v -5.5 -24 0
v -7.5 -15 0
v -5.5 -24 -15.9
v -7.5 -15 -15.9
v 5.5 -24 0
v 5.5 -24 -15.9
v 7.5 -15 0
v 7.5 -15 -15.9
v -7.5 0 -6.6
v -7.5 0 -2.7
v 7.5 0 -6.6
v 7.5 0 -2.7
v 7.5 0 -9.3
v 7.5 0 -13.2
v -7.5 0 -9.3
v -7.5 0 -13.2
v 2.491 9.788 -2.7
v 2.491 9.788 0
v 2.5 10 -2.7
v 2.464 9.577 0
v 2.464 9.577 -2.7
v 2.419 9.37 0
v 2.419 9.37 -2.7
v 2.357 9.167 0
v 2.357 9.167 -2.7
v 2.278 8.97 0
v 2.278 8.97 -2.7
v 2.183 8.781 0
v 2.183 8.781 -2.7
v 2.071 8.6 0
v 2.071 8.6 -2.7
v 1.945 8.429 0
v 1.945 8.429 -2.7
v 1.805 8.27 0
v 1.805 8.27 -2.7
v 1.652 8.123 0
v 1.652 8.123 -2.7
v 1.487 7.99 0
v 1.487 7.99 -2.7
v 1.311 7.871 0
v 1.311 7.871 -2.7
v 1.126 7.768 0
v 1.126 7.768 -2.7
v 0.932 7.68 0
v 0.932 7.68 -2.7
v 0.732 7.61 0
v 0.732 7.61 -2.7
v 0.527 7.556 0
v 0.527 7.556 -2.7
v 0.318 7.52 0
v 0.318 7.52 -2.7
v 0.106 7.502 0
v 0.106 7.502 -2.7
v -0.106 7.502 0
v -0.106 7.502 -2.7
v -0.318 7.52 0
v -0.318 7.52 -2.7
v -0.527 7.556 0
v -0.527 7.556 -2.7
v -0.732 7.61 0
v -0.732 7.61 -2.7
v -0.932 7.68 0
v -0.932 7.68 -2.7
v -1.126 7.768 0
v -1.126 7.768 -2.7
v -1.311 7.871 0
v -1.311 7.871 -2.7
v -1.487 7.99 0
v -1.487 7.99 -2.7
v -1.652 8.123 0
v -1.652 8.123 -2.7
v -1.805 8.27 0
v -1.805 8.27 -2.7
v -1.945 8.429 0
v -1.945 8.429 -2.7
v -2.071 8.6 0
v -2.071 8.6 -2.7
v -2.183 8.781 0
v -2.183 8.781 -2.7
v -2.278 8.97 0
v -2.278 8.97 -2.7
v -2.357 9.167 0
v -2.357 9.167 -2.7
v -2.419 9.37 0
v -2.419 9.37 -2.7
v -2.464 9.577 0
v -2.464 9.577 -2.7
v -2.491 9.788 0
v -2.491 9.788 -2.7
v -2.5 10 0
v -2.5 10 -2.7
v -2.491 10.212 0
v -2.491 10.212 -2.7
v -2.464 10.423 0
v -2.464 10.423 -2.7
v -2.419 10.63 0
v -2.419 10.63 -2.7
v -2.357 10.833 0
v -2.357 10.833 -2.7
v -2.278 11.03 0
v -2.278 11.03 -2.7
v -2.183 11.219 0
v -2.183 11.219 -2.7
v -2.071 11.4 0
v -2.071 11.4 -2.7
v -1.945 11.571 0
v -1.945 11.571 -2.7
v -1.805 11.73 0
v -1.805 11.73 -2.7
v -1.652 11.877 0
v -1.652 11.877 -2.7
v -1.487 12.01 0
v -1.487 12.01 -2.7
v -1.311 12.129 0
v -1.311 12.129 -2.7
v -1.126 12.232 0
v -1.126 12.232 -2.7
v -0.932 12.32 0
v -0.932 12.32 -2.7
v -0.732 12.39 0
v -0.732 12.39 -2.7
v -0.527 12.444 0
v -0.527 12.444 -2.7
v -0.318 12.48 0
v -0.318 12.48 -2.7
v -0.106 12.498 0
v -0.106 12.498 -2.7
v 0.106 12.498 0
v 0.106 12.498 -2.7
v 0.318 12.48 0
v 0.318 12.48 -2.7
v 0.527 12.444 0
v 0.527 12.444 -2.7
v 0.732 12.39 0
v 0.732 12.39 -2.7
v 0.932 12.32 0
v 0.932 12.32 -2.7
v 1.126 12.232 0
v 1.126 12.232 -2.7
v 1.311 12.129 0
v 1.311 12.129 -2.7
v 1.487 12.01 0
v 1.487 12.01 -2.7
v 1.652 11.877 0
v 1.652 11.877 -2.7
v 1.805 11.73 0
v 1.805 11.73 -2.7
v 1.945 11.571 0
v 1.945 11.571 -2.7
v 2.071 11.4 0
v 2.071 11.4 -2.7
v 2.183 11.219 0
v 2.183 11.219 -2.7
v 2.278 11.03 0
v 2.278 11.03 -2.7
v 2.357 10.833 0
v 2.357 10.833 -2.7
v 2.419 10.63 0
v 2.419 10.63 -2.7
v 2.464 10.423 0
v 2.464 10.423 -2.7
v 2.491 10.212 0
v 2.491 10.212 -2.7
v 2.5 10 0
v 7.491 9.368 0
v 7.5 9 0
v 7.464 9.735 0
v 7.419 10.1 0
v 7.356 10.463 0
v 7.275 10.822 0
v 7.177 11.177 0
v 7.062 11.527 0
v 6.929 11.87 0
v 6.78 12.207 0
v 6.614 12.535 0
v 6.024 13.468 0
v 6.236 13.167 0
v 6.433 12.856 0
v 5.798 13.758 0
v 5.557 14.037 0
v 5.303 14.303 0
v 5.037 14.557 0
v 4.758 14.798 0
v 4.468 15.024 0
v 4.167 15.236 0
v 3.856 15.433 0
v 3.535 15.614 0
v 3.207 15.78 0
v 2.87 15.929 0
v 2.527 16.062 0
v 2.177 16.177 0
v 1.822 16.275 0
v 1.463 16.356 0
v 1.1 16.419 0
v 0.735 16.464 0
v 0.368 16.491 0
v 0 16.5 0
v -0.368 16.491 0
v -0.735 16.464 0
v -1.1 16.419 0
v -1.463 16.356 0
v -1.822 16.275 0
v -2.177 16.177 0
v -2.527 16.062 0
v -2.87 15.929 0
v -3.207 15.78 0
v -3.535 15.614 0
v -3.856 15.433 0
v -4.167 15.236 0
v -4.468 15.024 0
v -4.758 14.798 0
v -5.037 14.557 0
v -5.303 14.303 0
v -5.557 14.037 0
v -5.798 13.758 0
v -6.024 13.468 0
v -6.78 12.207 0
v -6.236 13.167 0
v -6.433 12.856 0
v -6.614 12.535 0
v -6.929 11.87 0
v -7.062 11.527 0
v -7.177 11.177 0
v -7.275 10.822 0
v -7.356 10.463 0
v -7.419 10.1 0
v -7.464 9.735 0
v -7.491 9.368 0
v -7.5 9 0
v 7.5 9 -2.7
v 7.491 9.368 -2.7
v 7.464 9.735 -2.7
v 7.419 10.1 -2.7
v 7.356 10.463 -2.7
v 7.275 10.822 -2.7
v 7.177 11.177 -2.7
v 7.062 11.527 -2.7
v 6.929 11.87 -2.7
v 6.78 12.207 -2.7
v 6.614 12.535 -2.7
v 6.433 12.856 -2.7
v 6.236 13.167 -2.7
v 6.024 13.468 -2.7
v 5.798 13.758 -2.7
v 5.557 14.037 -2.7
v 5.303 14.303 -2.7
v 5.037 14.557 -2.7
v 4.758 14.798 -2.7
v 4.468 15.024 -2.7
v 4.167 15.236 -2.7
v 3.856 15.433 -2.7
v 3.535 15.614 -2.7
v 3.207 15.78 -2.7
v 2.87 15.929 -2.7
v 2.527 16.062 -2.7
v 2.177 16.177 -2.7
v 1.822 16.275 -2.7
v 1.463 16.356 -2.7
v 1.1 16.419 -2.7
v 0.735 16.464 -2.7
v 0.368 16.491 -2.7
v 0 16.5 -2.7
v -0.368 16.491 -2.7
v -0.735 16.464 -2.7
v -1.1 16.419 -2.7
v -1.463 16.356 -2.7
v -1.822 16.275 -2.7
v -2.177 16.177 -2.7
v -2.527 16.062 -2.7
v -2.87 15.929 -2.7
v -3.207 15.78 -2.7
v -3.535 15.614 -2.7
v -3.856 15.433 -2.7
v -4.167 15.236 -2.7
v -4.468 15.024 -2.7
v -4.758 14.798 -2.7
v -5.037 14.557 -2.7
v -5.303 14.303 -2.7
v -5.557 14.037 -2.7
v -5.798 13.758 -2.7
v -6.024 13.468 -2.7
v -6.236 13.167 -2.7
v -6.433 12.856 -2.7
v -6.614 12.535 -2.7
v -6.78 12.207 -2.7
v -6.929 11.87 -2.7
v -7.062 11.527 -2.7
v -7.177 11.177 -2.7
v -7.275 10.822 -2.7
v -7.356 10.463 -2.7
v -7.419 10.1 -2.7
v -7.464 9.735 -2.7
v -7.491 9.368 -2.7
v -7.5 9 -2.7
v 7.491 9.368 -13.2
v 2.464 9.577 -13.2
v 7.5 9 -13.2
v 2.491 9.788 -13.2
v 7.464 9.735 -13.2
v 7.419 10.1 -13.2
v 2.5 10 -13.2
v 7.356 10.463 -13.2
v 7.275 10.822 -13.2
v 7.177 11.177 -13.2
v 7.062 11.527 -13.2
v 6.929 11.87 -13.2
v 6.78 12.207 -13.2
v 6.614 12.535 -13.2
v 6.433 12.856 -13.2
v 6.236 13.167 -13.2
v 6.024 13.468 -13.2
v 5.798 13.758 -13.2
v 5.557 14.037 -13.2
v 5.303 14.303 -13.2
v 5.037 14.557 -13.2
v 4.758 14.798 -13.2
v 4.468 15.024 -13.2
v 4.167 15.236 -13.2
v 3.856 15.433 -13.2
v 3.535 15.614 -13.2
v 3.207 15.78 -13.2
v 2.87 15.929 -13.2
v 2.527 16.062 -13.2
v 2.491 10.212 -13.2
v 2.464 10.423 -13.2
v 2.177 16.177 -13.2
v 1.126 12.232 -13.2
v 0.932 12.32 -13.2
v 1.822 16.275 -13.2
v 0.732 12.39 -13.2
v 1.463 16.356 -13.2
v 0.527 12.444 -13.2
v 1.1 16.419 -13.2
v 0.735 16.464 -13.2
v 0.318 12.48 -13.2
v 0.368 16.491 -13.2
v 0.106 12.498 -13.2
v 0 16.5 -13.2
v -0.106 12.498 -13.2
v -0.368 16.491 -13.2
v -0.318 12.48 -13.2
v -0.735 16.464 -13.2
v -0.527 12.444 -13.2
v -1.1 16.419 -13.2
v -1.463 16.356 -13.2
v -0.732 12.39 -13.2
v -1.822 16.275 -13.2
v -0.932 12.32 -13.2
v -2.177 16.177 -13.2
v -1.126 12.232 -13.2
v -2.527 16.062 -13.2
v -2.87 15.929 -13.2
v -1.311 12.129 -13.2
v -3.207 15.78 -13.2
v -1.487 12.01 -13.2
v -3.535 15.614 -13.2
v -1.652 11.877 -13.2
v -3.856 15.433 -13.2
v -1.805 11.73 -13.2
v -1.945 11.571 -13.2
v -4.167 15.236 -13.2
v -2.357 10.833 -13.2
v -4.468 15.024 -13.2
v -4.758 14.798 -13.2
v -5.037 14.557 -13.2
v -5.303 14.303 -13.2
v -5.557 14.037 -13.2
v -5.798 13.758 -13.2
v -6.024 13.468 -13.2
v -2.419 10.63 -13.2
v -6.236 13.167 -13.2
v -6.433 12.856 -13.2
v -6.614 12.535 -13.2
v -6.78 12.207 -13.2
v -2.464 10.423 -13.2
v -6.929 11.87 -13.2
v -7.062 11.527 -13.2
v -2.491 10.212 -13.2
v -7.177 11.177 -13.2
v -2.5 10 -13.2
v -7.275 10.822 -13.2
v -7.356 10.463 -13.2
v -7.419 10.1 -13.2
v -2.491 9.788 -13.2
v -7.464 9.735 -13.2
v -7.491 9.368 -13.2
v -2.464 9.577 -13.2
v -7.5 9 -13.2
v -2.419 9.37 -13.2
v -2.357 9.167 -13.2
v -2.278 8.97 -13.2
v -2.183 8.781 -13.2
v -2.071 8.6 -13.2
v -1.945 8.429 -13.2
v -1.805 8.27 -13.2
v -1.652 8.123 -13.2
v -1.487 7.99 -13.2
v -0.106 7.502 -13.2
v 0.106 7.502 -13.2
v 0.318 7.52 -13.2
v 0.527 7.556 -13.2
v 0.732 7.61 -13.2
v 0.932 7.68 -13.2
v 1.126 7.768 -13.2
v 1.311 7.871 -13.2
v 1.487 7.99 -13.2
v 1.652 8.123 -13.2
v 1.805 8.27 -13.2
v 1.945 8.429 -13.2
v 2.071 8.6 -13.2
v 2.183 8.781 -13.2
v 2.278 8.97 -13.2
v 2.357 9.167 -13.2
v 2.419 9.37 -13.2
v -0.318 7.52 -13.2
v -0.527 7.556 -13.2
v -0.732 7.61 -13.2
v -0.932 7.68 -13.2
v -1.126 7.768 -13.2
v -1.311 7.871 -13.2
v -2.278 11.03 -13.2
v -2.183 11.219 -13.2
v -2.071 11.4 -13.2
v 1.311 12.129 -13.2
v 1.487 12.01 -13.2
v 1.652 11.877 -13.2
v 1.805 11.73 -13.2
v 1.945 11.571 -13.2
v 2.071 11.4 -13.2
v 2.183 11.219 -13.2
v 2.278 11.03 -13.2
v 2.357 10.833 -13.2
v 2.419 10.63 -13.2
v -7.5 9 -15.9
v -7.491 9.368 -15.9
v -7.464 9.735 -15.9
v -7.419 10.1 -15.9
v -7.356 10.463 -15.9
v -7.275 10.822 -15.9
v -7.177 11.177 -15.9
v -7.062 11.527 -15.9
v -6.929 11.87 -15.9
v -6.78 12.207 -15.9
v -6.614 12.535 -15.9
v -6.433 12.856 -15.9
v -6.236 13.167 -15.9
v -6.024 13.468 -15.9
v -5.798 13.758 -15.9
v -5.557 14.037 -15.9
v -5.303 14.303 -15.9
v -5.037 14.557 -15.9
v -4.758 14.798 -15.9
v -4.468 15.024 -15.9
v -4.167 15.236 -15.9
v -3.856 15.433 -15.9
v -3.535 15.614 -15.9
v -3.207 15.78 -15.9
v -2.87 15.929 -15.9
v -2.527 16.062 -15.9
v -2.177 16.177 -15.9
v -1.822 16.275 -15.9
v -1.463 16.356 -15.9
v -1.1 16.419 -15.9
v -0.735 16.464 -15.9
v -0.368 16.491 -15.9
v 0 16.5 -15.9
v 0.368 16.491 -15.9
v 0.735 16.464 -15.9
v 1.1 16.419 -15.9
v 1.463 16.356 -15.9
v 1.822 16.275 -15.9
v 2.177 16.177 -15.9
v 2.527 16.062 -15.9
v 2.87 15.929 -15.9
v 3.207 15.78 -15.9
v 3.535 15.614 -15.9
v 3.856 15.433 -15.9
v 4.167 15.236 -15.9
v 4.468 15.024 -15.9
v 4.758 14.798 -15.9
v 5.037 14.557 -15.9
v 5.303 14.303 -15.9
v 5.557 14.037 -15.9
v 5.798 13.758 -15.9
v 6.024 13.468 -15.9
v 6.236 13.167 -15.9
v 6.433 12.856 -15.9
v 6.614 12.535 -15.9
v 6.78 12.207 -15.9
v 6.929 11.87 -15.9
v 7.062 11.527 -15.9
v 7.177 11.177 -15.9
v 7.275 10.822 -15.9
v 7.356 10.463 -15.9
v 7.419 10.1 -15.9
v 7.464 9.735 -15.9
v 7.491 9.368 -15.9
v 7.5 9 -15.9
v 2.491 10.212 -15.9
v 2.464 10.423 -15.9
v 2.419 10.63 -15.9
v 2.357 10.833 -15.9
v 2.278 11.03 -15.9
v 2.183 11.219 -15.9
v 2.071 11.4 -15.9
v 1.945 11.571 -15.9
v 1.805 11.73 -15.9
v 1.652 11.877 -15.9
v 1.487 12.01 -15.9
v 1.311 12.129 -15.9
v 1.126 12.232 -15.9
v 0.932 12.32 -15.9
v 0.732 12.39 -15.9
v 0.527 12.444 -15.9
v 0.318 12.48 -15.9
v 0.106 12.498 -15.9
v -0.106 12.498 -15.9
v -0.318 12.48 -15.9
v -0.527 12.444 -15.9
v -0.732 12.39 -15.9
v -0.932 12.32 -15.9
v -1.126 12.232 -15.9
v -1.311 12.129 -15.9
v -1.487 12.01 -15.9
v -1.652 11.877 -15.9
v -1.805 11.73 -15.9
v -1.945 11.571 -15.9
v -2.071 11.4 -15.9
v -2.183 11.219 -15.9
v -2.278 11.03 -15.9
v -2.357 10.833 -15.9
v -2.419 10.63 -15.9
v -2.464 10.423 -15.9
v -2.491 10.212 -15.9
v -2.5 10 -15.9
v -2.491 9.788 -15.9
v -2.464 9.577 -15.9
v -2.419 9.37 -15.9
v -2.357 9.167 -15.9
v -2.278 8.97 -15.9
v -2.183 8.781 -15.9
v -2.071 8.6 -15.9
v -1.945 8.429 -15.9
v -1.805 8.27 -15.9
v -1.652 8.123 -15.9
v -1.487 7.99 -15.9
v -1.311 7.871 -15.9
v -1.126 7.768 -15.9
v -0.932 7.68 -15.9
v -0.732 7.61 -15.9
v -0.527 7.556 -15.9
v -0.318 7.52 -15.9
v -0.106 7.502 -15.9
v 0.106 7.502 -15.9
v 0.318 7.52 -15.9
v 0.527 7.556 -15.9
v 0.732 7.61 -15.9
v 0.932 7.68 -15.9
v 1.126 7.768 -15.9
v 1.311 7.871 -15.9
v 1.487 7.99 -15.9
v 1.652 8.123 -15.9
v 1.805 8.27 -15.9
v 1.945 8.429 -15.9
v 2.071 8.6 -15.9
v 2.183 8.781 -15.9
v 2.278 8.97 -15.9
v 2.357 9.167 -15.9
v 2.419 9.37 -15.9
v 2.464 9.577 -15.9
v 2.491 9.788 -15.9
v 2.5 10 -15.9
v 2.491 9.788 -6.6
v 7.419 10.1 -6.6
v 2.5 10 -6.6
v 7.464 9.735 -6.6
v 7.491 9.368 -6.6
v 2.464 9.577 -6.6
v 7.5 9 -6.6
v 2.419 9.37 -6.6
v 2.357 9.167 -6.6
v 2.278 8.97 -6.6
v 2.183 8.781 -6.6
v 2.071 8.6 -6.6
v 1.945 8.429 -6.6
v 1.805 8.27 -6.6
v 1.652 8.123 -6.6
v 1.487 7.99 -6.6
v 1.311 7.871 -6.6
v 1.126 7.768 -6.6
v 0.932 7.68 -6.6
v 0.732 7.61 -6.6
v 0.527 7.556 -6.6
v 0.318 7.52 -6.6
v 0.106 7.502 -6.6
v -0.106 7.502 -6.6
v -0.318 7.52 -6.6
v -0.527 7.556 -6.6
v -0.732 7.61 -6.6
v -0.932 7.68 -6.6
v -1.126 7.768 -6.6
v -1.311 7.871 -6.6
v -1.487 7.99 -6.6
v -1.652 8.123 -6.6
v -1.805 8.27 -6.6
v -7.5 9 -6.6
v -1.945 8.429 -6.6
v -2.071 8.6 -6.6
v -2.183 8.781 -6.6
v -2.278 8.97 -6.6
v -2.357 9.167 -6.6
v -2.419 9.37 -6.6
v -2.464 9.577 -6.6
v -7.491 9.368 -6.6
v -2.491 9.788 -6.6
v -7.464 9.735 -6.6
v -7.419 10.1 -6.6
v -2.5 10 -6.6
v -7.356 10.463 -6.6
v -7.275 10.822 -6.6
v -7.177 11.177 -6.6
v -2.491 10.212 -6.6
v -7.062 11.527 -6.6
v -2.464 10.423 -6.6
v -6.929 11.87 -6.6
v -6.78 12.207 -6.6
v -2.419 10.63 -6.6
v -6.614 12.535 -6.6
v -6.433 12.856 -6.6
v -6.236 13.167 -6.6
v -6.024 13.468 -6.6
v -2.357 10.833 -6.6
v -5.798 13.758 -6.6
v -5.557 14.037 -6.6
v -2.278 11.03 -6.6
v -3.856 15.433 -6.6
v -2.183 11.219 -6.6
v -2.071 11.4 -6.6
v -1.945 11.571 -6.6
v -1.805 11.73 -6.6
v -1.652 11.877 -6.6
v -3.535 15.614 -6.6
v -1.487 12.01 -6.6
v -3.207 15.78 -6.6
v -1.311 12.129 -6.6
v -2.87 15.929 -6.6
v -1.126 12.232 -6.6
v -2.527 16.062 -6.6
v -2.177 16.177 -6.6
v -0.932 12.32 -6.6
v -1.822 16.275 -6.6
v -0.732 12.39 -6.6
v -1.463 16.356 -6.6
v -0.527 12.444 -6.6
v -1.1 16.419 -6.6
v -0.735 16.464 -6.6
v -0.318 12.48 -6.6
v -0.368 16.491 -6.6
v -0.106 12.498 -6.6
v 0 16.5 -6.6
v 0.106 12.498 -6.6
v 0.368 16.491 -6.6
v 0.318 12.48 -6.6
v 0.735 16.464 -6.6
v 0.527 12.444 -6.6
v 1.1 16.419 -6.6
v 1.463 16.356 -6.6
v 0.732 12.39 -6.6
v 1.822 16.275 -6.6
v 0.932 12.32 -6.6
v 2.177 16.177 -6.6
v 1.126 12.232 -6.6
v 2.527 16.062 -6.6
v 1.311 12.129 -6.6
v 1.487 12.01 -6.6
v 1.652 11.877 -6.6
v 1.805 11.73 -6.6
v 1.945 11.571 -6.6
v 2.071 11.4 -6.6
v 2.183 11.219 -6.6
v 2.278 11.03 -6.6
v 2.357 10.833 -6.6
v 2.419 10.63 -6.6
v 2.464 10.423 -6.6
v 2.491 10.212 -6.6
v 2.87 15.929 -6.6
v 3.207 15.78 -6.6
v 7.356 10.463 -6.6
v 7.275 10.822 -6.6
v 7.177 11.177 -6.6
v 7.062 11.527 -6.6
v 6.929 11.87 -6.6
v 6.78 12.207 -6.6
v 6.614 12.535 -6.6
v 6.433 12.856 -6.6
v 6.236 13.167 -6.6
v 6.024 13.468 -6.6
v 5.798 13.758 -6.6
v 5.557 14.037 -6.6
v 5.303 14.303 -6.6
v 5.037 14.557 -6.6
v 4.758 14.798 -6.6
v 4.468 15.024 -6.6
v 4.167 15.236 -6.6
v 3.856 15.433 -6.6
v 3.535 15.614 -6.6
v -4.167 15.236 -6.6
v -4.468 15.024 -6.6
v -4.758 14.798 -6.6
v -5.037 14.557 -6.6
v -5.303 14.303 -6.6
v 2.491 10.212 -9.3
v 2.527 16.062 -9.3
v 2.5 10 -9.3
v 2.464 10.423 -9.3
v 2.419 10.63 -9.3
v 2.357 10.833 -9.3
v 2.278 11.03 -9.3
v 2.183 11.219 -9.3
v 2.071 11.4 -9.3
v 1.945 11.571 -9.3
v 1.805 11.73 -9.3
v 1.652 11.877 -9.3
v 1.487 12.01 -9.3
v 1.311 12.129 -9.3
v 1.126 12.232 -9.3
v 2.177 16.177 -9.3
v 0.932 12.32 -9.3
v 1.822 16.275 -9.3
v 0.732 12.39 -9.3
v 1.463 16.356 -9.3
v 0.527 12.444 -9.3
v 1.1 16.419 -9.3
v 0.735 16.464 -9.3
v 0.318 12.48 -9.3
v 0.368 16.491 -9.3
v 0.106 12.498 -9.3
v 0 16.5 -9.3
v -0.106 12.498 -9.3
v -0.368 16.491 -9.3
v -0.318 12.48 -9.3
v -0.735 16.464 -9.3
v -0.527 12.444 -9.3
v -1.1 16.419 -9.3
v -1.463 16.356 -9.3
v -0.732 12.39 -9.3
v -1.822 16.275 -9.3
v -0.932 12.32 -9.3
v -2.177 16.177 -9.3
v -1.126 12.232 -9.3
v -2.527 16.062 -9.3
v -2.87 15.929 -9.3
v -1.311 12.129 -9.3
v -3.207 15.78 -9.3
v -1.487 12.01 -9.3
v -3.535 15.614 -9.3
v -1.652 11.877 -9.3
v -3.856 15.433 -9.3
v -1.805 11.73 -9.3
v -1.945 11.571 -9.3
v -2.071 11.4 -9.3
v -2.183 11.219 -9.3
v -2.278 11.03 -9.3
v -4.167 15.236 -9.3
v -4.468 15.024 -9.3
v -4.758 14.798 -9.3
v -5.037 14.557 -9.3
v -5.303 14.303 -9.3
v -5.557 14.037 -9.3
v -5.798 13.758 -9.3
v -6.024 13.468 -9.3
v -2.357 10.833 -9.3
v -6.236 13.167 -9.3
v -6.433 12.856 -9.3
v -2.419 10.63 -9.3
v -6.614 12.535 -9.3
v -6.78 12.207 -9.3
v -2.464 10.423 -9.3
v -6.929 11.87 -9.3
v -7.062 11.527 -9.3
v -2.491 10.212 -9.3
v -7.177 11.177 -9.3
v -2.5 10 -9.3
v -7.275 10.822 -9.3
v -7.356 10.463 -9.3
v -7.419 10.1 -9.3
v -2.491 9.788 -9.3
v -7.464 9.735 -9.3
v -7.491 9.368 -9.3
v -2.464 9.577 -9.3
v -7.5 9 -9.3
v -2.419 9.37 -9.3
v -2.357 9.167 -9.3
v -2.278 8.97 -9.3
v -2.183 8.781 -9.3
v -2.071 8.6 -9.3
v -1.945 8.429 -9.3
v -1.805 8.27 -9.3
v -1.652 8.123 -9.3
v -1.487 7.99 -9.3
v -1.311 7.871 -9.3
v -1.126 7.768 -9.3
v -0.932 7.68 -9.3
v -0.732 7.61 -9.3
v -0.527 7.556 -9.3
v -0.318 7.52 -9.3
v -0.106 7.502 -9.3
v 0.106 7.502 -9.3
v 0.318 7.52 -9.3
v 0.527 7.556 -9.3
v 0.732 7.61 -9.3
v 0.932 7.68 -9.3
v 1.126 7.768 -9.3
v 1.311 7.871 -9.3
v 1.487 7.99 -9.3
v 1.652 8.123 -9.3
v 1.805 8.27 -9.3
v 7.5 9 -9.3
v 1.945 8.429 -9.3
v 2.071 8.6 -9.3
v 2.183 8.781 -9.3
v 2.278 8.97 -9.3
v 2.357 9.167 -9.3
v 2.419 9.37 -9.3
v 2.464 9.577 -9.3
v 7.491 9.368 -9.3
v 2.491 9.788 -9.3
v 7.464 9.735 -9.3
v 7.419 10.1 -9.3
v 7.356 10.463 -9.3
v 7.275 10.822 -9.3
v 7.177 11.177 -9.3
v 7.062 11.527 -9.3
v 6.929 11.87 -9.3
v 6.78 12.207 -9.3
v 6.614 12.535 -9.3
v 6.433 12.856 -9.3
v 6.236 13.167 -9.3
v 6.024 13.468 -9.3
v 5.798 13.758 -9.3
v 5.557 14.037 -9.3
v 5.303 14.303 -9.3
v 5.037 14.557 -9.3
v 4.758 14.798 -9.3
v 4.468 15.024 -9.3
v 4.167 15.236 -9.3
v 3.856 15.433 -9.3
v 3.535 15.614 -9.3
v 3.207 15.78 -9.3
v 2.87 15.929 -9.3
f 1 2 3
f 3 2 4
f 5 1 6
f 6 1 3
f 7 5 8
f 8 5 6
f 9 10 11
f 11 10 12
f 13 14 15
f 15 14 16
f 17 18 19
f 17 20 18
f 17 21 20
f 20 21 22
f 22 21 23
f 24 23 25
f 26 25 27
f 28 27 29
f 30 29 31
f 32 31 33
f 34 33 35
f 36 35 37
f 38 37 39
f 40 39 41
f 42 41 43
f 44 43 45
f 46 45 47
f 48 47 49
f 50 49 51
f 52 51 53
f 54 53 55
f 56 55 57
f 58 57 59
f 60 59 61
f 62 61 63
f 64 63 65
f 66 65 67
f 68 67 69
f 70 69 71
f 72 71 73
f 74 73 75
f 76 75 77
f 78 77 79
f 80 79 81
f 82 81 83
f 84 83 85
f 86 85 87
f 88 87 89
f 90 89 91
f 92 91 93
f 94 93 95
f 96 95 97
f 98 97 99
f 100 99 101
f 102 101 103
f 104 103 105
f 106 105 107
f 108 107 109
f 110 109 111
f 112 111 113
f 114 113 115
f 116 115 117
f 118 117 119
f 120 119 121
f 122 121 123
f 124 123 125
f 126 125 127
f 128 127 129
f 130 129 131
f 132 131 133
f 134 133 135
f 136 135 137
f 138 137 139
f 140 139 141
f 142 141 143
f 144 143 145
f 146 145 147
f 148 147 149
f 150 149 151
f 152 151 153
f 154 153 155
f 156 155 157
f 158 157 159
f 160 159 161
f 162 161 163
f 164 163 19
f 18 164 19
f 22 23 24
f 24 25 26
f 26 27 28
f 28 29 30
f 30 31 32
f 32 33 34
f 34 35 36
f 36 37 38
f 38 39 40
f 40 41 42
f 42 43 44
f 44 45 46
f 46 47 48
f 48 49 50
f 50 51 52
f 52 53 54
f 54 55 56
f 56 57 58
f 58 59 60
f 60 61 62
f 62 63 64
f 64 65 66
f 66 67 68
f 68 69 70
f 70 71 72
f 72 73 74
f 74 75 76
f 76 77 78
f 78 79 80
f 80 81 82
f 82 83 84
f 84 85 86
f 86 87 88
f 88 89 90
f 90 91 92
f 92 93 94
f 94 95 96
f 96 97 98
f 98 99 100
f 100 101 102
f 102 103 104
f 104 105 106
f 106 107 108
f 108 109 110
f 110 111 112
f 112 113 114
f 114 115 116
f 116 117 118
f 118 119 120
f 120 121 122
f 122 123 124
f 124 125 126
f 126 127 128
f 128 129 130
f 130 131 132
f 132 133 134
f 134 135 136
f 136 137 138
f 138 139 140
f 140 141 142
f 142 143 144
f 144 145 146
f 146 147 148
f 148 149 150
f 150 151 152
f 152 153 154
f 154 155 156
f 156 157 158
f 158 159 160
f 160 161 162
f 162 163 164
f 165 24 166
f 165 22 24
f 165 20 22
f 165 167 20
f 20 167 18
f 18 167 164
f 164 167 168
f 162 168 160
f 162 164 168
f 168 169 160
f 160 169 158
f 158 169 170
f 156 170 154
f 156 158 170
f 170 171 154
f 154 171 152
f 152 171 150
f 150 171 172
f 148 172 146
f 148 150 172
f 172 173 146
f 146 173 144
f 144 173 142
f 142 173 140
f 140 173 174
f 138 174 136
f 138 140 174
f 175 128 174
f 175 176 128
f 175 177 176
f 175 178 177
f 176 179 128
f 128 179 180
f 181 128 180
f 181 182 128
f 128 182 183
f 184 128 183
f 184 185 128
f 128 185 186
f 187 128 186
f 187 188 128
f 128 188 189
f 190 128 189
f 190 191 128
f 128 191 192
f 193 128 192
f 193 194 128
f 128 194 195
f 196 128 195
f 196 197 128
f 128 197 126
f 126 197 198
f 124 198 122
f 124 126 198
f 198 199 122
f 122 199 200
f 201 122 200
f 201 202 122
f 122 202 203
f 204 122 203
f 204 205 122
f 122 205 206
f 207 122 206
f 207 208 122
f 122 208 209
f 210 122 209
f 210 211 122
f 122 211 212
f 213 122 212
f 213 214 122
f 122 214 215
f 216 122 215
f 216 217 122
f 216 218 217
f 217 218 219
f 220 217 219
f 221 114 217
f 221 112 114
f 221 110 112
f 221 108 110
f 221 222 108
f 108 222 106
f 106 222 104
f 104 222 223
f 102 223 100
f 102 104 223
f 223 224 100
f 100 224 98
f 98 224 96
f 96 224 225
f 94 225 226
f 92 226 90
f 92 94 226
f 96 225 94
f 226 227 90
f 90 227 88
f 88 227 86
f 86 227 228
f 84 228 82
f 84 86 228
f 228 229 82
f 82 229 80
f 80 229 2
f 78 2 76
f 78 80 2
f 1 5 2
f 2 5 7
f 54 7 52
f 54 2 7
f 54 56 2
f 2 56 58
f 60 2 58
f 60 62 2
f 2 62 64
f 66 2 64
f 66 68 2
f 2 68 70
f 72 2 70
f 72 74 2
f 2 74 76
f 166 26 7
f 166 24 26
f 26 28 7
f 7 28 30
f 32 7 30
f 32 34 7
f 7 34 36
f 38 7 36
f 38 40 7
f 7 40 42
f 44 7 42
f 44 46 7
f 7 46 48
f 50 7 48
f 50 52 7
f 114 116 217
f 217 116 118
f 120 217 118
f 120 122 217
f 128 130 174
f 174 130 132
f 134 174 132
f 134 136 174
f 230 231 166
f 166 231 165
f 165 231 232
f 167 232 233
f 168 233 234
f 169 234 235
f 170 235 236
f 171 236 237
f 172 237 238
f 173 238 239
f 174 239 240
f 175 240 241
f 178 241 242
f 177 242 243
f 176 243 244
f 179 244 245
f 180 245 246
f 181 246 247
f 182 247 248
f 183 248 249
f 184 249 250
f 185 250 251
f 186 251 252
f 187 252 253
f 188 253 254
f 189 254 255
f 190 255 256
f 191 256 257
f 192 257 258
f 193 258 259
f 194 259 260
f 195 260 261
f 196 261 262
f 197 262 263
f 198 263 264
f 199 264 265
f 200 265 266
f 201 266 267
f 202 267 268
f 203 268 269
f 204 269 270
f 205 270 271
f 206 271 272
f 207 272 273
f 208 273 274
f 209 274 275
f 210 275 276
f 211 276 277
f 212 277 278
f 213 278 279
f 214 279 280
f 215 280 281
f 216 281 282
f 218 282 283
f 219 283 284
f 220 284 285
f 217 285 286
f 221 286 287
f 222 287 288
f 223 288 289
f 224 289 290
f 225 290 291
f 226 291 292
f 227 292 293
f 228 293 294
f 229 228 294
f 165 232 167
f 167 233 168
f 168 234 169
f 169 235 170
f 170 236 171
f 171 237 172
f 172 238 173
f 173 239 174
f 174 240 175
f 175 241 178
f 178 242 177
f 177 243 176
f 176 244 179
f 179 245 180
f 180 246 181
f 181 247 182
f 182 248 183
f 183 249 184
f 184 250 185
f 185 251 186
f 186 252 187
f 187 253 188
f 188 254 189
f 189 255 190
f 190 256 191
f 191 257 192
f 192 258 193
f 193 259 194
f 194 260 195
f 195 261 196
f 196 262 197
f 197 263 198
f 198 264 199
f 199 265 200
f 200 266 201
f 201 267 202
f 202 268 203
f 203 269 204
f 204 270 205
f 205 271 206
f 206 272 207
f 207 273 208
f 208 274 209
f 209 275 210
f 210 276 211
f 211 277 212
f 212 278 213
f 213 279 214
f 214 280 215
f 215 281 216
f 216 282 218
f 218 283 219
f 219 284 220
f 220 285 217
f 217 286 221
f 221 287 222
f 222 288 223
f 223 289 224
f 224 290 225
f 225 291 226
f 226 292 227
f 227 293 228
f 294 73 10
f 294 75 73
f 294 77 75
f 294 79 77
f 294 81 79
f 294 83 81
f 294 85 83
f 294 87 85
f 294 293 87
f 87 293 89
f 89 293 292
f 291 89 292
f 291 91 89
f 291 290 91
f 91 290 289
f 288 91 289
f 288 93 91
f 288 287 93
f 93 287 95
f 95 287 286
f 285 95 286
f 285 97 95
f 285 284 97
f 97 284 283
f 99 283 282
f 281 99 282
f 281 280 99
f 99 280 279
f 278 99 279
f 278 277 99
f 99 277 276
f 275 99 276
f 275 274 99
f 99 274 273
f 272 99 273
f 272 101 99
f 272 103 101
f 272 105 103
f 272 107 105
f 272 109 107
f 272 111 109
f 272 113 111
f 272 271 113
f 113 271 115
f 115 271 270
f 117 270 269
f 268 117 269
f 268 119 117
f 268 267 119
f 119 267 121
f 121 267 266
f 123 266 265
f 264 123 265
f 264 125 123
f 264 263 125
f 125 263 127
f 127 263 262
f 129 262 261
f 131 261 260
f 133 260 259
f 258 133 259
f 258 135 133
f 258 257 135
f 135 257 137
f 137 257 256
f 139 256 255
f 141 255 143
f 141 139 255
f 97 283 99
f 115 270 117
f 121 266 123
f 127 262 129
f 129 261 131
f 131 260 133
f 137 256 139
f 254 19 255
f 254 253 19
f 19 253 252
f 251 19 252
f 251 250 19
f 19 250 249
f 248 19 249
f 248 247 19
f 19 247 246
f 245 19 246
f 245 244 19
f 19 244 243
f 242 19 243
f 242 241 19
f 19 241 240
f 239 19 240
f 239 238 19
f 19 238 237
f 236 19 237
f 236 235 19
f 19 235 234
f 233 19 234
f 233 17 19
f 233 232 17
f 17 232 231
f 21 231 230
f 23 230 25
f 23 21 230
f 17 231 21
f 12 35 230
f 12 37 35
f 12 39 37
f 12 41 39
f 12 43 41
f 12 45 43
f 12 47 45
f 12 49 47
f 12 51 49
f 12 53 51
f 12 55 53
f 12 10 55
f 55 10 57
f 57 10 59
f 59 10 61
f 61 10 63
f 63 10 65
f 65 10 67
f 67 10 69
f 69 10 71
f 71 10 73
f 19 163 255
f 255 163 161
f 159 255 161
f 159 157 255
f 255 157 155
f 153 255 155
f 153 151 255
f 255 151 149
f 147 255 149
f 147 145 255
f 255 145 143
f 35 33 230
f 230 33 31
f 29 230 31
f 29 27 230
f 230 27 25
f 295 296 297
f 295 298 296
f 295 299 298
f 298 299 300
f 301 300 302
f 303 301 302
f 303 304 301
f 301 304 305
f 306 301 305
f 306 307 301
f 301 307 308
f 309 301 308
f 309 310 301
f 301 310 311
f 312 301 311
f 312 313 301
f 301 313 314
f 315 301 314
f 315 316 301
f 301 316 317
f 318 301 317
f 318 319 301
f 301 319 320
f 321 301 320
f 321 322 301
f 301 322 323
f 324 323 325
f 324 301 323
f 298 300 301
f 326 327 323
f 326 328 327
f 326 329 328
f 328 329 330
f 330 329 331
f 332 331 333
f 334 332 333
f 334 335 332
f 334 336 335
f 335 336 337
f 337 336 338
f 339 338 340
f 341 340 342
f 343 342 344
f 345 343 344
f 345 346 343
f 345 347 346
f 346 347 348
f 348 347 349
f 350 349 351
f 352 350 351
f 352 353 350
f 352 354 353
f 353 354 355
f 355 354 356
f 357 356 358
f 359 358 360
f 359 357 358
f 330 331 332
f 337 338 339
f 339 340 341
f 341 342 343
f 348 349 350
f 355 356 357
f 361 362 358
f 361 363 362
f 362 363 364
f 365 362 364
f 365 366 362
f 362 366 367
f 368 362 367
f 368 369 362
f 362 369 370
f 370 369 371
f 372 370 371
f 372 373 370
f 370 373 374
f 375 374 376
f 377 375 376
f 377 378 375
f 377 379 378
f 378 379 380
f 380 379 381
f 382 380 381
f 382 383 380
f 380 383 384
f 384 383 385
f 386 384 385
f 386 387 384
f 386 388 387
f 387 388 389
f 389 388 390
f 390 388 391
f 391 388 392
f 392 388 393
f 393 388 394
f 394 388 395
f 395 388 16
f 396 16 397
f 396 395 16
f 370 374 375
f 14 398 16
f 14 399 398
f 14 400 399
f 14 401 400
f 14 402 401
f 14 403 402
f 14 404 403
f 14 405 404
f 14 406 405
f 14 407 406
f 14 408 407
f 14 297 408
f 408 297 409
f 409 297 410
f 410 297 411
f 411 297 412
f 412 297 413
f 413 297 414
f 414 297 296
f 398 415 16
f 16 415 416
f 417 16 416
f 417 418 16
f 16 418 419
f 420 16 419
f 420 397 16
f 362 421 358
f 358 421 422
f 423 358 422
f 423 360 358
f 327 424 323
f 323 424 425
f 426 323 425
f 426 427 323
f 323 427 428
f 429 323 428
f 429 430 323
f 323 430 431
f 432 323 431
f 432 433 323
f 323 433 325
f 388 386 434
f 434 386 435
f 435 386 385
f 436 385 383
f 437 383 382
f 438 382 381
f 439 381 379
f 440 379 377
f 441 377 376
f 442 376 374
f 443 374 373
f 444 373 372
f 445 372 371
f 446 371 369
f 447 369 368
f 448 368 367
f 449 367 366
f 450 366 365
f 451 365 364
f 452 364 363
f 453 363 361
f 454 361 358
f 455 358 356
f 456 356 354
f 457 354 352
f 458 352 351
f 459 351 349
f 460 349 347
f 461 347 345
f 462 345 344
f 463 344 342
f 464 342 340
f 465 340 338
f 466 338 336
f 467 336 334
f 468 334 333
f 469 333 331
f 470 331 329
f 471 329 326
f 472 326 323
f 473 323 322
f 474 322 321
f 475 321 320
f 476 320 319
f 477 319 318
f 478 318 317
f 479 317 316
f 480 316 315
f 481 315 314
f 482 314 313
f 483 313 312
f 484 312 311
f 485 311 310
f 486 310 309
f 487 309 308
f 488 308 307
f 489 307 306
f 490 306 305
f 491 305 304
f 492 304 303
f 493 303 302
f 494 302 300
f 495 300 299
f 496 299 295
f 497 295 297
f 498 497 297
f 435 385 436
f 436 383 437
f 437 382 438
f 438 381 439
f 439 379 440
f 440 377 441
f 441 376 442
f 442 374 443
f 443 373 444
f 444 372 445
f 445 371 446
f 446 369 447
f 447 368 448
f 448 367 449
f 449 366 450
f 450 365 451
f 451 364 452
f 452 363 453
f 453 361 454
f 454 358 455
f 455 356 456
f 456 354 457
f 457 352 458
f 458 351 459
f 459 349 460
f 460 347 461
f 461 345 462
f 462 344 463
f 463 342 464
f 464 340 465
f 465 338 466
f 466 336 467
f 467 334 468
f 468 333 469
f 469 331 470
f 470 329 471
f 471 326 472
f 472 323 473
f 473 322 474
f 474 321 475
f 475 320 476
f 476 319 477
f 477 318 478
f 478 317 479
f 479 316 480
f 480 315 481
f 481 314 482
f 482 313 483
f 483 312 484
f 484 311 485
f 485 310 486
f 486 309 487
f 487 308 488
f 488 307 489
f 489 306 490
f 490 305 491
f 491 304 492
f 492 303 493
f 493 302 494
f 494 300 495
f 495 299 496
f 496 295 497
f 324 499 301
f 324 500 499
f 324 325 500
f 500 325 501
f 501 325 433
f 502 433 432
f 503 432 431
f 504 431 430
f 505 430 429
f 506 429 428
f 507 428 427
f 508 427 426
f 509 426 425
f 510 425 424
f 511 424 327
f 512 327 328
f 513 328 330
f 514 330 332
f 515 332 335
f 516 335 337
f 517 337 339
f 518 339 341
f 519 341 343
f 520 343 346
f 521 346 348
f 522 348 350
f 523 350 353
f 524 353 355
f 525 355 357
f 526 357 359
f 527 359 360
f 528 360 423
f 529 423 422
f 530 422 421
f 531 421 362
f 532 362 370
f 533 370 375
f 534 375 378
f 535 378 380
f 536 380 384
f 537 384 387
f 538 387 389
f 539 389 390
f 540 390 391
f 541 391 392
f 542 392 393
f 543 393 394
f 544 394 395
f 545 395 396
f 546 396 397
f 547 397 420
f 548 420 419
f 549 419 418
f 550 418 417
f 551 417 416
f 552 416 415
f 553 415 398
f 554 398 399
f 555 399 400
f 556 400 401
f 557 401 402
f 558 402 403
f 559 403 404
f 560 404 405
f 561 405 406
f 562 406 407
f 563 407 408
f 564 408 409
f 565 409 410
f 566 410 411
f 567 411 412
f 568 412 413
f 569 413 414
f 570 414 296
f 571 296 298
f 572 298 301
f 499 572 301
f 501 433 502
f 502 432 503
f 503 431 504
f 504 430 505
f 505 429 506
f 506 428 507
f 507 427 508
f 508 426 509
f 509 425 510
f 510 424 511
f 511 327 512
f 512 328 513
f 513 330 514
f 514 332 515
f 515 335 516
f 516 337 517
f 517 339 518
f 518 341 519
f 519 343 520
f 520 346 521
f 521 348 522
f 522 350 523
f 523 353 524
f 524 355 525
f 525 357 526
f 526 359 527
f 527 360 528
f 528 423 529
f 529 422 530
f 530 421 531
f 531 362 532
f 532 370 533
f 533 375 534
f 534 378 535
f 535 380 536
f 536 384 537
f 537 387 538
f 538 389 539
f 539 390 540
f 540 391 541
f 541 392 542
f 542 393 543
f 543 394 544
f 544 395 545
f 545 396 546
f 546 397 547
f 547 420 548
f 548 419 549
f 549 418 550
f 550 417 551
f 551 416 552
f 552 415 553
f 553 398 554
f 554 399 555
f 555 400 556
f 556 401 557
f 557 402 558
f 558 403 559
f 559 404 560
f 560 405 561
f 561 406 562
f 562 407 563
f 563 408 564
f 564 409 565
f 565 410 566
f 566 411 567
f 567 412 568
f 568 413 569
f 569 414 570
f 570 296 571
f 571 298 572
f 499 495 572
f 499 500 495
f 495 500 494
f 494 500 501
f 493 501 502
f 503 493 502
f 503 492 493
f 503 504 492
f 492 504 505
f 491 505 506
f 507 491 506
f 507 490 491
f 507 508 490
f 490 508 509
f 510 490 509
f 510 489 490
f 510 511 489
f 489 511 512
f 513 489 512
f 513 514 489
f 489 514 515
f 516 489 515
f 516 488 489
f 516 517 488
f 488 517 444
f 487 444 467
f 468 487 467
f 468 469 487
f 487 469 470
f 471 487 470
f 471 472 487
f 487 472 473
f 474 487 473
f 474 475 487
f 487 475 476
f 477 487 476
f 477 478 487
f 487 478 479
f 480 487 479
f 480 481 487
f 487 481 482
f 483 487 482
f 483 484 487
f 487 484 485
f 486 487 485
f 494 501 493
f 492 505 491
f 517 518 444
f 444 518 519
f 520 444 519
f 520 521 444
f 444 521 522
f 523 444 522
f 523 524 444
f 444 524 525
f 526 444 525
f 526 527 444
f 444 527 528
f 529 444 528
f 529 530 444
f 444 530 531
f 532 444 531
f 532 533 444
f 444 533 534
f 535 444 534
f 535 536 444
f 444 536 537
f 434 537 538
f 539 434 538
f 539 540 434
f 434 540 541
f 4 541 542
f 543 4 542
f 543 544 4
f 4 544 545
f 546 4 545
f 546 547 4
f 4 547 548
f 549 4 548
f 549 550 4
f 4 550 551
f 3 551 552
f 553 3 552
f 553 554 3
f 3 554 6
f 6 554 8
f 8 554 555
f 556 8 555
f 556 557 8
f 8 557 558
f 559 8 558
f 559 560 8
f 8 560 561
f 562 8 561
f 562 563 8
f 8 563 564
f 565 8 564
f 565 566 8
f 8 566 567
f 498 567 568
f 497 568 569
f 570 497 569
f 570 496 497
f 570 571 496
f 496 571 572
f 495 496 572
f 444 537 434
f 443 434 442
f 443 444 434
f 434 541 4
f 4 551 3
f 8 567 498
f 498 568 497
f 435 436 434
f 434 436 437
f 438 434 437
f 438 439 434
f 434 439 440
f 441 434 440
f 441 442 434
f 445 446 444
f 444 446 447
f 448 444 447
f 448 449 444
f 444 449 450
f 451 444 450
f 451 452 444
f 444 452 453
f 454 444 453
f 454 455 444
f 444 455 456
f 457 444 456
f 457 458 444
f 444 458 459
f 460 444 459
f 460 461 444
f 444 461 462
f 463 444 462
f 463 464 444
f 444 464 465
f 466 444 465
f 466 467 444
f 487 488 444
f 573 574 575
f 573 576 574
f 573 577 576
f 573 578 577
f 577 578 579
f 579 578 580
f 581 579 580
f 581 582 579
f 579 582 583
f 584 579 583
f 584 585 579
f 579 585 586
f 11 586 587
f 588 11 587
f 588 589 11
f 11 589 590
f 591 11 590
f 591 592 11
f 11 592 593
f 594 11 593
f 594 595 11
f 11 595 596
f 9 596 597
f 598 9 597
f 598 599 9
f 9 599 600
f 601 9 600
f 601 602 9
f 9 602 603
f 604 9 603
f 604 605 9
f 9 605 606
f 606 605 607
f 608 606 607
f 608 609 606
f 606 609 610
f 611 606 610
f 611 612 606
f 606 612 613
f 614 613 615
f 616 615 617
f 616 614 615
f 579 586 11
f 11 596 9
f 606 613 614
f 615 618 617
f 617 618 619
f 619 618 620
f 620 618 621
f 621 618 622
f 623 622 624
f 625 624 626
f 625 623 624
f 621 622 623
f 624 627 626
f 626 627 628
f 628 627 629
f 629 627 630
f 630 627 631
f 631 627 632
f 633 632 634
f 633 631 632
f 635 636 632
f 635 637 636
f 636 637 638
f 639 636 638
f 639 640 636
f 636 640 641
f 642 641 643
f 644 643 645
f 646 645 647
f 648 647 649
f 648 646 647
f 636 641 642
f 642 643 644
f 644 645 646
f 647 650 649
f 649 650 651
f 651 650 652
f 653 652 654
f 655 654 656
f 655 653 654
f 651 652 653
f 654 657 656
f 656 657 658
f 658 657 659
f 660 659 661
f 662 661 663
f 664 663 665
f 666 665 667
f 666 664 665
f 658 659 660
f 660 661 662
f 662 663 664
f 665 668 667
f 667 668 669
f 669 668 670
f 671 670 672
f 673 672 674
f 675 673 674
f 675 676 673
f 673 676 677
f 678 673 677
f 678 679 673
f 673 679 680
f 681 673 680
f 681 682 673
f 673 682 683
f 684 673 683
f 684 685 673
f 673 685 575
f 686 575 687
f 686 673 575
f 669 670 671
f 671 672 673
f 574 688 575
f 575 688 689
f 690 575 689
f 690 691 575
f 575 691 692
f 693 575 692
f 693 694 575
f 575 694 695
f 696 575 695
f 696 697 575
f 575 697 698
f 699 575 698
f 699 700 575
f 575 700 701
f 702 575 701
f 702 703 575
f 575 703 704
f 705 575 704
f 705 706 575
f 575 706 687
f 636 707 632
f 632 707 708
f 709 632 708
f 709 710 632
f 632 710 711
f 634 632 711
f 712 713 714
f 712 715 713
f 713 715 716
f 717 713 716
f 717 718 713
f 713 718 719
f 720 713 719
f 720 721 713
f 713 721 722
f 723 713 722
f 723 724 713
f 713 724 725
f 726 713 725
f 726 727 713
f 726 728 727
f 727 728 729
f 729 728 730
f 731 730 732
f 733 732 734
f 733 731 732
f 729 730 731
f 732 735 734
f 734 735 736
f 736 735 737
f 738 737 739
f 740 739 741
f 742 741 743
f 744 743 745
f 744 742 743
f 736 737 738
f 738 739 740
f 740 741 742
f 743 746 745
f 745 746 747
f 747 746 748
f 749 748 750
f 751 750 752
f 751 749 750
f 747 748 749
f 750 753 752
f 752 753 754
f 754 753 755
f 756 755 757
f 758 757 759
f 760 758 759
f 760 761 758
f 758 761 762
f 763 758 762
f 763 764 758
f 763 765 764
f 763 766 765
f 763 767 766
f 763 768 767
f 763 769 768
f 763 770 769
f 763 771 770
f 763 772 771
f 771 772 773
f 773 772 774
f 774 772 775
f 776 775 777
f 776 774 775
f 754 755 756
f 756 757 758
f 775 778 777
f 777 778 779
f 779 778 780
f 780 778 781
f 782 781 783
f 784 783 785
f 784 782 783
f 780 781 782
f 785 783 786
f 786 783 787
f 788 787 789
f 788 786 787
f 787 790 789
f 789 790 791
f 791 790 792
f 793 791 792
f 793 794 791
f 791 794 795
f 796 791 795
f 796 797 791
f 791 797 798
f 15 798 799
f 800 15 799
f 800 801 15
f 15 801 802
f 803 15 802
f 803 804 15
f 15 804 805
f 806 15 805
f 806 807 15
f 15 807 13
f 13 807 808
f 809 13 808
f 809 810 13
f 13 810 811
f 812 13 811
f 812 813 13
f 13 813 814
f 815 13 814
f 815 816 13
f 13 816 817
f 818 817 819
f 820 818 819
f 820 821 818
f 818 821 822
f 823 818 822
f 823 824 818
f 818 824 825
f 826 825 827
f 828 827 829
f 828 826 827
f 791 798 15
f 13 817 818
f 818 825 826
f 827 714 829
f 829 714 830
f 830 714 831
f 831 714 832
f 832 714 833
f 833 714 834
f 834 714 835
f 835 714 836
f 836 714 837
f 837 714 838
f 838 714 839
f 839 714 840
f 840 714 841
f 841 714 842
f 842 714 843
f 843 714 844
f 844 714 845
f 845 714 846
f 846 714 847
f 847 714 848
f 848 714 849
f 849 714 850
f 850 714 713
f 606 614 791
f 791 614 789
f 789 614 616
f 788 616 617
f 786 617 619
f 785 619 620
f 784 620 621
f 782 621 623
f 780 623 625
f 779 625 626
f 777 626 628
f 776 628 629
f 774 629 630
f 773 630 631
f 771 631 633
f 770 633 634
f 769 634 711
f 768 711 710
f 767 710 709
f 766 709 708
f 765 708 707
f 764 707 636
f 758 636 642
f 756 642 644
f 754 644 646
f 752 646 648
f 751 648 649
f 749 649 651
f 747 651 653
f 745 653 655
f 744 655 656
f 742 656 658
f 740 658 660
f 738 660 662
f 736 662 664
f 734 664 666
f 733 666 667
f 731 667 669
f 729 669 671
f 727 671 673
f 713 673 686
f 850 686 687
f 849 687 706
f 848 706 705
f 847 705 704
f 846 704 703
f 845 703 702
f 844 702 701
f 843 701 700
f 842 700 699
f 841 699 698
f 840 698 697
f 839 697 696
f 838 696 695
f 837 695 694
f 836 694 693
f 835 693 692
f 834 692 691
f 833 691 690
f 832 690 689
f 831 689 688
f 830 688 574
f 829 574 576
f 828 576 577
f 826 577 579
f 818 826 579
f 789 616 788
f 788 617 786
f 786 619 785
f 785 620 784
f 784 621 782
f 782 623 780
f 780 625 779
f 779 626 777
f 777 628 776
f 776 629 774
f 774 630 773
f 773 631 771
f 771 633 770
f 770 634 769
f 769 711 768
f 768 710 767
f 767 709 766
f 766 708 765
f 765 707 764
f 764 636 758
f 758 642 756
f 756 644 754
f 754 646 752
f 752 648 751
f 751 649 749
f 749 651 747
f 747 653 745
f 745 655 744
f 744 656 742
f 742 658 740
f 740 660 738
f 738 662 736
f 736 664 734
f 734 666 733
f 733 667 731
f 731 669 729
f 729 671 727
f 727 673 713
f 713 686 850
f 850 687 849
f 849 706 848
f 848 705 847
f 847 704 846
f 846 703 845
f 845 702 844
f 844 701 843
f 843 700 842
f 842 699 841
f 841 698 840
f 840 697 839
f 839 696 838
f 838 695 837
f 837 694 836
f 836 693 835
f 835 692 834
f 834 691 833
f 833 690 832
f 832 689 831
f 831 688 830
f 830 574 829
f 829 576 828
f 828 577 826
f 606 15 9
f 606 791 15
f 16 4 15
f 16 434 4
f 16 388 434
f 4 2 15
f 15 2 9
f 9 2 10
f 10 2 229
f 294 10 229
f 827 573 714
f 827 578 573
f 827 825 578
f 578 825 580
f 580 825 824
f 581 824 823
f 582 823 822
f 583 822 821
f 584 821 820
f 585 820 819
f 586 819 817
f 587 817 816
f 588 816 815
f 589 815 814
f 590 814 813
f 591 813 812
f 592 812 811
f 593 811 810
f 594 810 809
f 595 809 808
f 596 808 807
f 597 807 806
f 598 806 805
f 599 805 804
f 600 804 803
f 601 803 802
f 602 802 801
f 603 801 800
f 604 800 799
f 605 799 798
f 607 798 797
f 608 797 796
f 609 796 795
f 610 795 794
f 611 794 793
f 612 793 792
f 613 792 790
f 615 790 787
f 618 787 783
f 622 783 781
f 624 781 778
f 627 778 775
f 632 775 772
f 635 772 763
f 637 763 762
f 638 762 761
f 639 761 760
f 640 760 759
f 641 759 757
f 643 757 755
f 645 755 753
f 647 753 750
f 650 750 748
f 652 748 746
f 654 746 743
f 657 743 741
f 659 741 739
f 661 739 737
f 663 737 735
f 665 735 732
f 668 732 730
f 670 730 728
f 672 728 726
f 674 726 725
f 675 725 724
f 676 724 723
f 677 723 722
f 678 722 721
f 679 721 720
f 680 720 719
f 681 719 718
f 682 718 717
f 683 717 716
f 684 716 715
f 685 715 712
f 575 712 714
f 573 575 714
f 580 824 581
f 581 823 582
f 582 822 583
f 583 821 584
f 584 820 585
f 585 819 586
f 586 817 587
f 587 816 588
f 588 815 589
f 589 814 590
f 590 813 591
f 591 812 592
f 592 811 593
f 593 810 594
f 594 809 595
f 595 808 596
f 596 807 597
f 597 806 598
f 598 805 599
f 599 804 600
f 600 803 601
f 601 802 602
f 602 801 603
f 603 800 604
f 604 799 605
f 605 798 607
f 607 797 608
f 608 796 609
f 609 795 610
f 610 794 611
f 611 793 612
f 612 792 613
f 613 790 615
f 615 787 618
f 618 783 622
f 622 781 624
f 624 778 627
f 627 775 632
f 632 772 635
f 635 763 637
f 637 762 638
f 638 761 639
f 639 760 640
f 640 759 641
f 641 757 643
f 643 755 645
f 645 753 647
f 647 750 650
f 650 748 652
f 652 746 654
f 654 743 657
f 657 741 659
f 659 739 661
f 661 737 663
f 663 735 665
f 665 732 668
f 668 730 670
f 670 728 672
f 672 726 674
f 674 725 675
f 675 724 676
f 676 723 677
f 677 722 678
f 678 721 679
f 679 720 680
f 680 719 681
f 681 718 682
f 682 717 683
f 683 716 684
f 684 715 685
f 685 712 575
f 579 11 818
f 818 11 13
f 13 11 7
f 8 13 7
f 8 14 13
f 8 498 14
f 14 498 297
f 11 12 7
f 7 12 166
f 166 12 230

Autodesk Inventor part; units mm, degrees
ref_plane "YZ Plane" through (0, 0, 0) normal (1, 0, 0) x (0, 1, 0)
ref_plane "XZ Plane" through (0, 0, 0) normal (0, 1, 0) x (-1, 0, 0)
ref_plane "XY Plane" through (0, 0, 0) normal (0, 0, 1) x (1, 0, 0)
sketch "Sketch4" plane through (0, 0, 0) normal (0, 0, 1) x (1, 0, 0)
  line L0 (-10.5, 0) -> (10.5, 0) projected
  line L1 (0, -3.3) -> (0, 19.8) projected
  line L2 (-7.5, 0) -> (7.5, 0)
  line L3 (7.5, 0) -> (7.5, 16.5)
  line L4 (7.5, 16.5) -> (-7.5, 16.5)
  line L5 (-7.5, 16.5) -> (-7.5, 0)
  circle A0 centre (0, 10) radius 2.5
  point P0 (0, 0)
  dimension "d0" = 7.5
  dimension "d1" = 7.5
  dimension "d2" = 16.5
  dimension "d3" = 5
  dimension "d4" = 6.5
extrude "Extrusion1" add sketch "Sketch4" against normal blind 15.9 contours L5 L4 L1 A0 L0 | L1 A0 L4 L3 L0
fillet "Fillet1" radius 7.5 2 edges at (7.5, 16.5, -7.95) (-7.5, 16.5, -7.95)
sketch "Sketch13" plane through (7.5, 9, 0) normal (1, 0, 0) x (0, 0, -1)
  line L0 (0, -12.3) -> (0, 10.8) projected
  line L1 (19.08, -9) -> (-3.18, -9) projected
  line L2 (0, -9) -> (0, 0) projected
  line L3 (0, 7.5) -> (15.9, 7.5) projected
  line L4 (0, -9) -> (2.7, -9)
  line L5 (2.7, -9) -> (2.7, 7.5)
  line L6 (2.7, 7.5) -> (0, 7.5)
  line L7 (0, 7.5) -> (0, -9)
  line L8 (15.9, -9) -> (15.9, 0) projected
  line L9 (15.9, -9) -> (13.2, -9)
  line L10 (13.2, -9) -> (13.2, 7.5)
  line L11 (13.2, 7.5) -> (15.9, 7.5)
  line L12 (15.9, 7.5) -> (15.9, -9)
  line L13 (6.6, -9) -> (9.3, -9)
  line L14 (9.3, -9) -> (9.3, 7.5)
  line L15 (9.3, 7.5) -> (6.6, 7.5)
  line L16 (6.6, 7.5) -> (6.6, -9)
  dimension "d47" = 2.7
  dimension "d48" = 2.7
  dimension "d49" = 2.7
  dimension "d50" = 15.9
  dimension "d51" = 3.9
  dimension "d52" = 3.9
extrude "Extrusion8" cut sketch "Sketch13" against normal through all contours L5 L3 L16 L1 | L14 L3 L10 L1
sketch "Sketch14" plane through (-7.5, 0, -6.6) normal (0, -1, 0) x (1, 0, 0)
  line L0 (0, 6.6) -> (15, 6.6) projected
  line L1 (15, -9.3) -> (0, -9.3) projected
  line L2 (15, 6.6) -> (0, 6.6)
  line L3 (0, 6.6) -> (0, -9.3)
  line L4 (0, -9.3) -> (15, -9.3)
  line L5 (15, -9.3) -> (15, 6.6)
  point P0 (7.5, 6.6)
extrude "Extrusion9" add sketch "Sketch14" along normal blind 4
sketch "Sketch15" plane through (0, 0, 0) normal (0, 0, 1) x (1, 0, 0)
  point P0 (0, 0)
sketch "Sketch16" plane through (0, 0, 0) normal (0, 0, 1) x (1, 0, 0)
  line L0 (-7.5, 9) -> (-7.5, -4) projected
  line L1 (-7.5, -4) -> (7.5, -4)
  line L2 (7.5, -4) -> (7.5, -24)
  line L3 (7.5, -24) -> (-7.5, -24)
  line L4 (-7.5, -24) -> (-7.5, -4)
  line L5 (7.5, -15) -> (5.5, -24)
  line L6 (-7.5, -15) -> (-5.5, -24)
  point P0 (0, 0)
  dimension "d57" = 15
  dimension "d58" = 20
  dimension "d59" = 9
  dimension "d60" = 2
  dimension "d61" = 2
  dimension "d62" = 9
extrude "Extrusion10" add sketch "Sketch16" against normal blind 15.9 contours L1 L2 L5 L3 L6 L4
properties part number "mountBrio"
